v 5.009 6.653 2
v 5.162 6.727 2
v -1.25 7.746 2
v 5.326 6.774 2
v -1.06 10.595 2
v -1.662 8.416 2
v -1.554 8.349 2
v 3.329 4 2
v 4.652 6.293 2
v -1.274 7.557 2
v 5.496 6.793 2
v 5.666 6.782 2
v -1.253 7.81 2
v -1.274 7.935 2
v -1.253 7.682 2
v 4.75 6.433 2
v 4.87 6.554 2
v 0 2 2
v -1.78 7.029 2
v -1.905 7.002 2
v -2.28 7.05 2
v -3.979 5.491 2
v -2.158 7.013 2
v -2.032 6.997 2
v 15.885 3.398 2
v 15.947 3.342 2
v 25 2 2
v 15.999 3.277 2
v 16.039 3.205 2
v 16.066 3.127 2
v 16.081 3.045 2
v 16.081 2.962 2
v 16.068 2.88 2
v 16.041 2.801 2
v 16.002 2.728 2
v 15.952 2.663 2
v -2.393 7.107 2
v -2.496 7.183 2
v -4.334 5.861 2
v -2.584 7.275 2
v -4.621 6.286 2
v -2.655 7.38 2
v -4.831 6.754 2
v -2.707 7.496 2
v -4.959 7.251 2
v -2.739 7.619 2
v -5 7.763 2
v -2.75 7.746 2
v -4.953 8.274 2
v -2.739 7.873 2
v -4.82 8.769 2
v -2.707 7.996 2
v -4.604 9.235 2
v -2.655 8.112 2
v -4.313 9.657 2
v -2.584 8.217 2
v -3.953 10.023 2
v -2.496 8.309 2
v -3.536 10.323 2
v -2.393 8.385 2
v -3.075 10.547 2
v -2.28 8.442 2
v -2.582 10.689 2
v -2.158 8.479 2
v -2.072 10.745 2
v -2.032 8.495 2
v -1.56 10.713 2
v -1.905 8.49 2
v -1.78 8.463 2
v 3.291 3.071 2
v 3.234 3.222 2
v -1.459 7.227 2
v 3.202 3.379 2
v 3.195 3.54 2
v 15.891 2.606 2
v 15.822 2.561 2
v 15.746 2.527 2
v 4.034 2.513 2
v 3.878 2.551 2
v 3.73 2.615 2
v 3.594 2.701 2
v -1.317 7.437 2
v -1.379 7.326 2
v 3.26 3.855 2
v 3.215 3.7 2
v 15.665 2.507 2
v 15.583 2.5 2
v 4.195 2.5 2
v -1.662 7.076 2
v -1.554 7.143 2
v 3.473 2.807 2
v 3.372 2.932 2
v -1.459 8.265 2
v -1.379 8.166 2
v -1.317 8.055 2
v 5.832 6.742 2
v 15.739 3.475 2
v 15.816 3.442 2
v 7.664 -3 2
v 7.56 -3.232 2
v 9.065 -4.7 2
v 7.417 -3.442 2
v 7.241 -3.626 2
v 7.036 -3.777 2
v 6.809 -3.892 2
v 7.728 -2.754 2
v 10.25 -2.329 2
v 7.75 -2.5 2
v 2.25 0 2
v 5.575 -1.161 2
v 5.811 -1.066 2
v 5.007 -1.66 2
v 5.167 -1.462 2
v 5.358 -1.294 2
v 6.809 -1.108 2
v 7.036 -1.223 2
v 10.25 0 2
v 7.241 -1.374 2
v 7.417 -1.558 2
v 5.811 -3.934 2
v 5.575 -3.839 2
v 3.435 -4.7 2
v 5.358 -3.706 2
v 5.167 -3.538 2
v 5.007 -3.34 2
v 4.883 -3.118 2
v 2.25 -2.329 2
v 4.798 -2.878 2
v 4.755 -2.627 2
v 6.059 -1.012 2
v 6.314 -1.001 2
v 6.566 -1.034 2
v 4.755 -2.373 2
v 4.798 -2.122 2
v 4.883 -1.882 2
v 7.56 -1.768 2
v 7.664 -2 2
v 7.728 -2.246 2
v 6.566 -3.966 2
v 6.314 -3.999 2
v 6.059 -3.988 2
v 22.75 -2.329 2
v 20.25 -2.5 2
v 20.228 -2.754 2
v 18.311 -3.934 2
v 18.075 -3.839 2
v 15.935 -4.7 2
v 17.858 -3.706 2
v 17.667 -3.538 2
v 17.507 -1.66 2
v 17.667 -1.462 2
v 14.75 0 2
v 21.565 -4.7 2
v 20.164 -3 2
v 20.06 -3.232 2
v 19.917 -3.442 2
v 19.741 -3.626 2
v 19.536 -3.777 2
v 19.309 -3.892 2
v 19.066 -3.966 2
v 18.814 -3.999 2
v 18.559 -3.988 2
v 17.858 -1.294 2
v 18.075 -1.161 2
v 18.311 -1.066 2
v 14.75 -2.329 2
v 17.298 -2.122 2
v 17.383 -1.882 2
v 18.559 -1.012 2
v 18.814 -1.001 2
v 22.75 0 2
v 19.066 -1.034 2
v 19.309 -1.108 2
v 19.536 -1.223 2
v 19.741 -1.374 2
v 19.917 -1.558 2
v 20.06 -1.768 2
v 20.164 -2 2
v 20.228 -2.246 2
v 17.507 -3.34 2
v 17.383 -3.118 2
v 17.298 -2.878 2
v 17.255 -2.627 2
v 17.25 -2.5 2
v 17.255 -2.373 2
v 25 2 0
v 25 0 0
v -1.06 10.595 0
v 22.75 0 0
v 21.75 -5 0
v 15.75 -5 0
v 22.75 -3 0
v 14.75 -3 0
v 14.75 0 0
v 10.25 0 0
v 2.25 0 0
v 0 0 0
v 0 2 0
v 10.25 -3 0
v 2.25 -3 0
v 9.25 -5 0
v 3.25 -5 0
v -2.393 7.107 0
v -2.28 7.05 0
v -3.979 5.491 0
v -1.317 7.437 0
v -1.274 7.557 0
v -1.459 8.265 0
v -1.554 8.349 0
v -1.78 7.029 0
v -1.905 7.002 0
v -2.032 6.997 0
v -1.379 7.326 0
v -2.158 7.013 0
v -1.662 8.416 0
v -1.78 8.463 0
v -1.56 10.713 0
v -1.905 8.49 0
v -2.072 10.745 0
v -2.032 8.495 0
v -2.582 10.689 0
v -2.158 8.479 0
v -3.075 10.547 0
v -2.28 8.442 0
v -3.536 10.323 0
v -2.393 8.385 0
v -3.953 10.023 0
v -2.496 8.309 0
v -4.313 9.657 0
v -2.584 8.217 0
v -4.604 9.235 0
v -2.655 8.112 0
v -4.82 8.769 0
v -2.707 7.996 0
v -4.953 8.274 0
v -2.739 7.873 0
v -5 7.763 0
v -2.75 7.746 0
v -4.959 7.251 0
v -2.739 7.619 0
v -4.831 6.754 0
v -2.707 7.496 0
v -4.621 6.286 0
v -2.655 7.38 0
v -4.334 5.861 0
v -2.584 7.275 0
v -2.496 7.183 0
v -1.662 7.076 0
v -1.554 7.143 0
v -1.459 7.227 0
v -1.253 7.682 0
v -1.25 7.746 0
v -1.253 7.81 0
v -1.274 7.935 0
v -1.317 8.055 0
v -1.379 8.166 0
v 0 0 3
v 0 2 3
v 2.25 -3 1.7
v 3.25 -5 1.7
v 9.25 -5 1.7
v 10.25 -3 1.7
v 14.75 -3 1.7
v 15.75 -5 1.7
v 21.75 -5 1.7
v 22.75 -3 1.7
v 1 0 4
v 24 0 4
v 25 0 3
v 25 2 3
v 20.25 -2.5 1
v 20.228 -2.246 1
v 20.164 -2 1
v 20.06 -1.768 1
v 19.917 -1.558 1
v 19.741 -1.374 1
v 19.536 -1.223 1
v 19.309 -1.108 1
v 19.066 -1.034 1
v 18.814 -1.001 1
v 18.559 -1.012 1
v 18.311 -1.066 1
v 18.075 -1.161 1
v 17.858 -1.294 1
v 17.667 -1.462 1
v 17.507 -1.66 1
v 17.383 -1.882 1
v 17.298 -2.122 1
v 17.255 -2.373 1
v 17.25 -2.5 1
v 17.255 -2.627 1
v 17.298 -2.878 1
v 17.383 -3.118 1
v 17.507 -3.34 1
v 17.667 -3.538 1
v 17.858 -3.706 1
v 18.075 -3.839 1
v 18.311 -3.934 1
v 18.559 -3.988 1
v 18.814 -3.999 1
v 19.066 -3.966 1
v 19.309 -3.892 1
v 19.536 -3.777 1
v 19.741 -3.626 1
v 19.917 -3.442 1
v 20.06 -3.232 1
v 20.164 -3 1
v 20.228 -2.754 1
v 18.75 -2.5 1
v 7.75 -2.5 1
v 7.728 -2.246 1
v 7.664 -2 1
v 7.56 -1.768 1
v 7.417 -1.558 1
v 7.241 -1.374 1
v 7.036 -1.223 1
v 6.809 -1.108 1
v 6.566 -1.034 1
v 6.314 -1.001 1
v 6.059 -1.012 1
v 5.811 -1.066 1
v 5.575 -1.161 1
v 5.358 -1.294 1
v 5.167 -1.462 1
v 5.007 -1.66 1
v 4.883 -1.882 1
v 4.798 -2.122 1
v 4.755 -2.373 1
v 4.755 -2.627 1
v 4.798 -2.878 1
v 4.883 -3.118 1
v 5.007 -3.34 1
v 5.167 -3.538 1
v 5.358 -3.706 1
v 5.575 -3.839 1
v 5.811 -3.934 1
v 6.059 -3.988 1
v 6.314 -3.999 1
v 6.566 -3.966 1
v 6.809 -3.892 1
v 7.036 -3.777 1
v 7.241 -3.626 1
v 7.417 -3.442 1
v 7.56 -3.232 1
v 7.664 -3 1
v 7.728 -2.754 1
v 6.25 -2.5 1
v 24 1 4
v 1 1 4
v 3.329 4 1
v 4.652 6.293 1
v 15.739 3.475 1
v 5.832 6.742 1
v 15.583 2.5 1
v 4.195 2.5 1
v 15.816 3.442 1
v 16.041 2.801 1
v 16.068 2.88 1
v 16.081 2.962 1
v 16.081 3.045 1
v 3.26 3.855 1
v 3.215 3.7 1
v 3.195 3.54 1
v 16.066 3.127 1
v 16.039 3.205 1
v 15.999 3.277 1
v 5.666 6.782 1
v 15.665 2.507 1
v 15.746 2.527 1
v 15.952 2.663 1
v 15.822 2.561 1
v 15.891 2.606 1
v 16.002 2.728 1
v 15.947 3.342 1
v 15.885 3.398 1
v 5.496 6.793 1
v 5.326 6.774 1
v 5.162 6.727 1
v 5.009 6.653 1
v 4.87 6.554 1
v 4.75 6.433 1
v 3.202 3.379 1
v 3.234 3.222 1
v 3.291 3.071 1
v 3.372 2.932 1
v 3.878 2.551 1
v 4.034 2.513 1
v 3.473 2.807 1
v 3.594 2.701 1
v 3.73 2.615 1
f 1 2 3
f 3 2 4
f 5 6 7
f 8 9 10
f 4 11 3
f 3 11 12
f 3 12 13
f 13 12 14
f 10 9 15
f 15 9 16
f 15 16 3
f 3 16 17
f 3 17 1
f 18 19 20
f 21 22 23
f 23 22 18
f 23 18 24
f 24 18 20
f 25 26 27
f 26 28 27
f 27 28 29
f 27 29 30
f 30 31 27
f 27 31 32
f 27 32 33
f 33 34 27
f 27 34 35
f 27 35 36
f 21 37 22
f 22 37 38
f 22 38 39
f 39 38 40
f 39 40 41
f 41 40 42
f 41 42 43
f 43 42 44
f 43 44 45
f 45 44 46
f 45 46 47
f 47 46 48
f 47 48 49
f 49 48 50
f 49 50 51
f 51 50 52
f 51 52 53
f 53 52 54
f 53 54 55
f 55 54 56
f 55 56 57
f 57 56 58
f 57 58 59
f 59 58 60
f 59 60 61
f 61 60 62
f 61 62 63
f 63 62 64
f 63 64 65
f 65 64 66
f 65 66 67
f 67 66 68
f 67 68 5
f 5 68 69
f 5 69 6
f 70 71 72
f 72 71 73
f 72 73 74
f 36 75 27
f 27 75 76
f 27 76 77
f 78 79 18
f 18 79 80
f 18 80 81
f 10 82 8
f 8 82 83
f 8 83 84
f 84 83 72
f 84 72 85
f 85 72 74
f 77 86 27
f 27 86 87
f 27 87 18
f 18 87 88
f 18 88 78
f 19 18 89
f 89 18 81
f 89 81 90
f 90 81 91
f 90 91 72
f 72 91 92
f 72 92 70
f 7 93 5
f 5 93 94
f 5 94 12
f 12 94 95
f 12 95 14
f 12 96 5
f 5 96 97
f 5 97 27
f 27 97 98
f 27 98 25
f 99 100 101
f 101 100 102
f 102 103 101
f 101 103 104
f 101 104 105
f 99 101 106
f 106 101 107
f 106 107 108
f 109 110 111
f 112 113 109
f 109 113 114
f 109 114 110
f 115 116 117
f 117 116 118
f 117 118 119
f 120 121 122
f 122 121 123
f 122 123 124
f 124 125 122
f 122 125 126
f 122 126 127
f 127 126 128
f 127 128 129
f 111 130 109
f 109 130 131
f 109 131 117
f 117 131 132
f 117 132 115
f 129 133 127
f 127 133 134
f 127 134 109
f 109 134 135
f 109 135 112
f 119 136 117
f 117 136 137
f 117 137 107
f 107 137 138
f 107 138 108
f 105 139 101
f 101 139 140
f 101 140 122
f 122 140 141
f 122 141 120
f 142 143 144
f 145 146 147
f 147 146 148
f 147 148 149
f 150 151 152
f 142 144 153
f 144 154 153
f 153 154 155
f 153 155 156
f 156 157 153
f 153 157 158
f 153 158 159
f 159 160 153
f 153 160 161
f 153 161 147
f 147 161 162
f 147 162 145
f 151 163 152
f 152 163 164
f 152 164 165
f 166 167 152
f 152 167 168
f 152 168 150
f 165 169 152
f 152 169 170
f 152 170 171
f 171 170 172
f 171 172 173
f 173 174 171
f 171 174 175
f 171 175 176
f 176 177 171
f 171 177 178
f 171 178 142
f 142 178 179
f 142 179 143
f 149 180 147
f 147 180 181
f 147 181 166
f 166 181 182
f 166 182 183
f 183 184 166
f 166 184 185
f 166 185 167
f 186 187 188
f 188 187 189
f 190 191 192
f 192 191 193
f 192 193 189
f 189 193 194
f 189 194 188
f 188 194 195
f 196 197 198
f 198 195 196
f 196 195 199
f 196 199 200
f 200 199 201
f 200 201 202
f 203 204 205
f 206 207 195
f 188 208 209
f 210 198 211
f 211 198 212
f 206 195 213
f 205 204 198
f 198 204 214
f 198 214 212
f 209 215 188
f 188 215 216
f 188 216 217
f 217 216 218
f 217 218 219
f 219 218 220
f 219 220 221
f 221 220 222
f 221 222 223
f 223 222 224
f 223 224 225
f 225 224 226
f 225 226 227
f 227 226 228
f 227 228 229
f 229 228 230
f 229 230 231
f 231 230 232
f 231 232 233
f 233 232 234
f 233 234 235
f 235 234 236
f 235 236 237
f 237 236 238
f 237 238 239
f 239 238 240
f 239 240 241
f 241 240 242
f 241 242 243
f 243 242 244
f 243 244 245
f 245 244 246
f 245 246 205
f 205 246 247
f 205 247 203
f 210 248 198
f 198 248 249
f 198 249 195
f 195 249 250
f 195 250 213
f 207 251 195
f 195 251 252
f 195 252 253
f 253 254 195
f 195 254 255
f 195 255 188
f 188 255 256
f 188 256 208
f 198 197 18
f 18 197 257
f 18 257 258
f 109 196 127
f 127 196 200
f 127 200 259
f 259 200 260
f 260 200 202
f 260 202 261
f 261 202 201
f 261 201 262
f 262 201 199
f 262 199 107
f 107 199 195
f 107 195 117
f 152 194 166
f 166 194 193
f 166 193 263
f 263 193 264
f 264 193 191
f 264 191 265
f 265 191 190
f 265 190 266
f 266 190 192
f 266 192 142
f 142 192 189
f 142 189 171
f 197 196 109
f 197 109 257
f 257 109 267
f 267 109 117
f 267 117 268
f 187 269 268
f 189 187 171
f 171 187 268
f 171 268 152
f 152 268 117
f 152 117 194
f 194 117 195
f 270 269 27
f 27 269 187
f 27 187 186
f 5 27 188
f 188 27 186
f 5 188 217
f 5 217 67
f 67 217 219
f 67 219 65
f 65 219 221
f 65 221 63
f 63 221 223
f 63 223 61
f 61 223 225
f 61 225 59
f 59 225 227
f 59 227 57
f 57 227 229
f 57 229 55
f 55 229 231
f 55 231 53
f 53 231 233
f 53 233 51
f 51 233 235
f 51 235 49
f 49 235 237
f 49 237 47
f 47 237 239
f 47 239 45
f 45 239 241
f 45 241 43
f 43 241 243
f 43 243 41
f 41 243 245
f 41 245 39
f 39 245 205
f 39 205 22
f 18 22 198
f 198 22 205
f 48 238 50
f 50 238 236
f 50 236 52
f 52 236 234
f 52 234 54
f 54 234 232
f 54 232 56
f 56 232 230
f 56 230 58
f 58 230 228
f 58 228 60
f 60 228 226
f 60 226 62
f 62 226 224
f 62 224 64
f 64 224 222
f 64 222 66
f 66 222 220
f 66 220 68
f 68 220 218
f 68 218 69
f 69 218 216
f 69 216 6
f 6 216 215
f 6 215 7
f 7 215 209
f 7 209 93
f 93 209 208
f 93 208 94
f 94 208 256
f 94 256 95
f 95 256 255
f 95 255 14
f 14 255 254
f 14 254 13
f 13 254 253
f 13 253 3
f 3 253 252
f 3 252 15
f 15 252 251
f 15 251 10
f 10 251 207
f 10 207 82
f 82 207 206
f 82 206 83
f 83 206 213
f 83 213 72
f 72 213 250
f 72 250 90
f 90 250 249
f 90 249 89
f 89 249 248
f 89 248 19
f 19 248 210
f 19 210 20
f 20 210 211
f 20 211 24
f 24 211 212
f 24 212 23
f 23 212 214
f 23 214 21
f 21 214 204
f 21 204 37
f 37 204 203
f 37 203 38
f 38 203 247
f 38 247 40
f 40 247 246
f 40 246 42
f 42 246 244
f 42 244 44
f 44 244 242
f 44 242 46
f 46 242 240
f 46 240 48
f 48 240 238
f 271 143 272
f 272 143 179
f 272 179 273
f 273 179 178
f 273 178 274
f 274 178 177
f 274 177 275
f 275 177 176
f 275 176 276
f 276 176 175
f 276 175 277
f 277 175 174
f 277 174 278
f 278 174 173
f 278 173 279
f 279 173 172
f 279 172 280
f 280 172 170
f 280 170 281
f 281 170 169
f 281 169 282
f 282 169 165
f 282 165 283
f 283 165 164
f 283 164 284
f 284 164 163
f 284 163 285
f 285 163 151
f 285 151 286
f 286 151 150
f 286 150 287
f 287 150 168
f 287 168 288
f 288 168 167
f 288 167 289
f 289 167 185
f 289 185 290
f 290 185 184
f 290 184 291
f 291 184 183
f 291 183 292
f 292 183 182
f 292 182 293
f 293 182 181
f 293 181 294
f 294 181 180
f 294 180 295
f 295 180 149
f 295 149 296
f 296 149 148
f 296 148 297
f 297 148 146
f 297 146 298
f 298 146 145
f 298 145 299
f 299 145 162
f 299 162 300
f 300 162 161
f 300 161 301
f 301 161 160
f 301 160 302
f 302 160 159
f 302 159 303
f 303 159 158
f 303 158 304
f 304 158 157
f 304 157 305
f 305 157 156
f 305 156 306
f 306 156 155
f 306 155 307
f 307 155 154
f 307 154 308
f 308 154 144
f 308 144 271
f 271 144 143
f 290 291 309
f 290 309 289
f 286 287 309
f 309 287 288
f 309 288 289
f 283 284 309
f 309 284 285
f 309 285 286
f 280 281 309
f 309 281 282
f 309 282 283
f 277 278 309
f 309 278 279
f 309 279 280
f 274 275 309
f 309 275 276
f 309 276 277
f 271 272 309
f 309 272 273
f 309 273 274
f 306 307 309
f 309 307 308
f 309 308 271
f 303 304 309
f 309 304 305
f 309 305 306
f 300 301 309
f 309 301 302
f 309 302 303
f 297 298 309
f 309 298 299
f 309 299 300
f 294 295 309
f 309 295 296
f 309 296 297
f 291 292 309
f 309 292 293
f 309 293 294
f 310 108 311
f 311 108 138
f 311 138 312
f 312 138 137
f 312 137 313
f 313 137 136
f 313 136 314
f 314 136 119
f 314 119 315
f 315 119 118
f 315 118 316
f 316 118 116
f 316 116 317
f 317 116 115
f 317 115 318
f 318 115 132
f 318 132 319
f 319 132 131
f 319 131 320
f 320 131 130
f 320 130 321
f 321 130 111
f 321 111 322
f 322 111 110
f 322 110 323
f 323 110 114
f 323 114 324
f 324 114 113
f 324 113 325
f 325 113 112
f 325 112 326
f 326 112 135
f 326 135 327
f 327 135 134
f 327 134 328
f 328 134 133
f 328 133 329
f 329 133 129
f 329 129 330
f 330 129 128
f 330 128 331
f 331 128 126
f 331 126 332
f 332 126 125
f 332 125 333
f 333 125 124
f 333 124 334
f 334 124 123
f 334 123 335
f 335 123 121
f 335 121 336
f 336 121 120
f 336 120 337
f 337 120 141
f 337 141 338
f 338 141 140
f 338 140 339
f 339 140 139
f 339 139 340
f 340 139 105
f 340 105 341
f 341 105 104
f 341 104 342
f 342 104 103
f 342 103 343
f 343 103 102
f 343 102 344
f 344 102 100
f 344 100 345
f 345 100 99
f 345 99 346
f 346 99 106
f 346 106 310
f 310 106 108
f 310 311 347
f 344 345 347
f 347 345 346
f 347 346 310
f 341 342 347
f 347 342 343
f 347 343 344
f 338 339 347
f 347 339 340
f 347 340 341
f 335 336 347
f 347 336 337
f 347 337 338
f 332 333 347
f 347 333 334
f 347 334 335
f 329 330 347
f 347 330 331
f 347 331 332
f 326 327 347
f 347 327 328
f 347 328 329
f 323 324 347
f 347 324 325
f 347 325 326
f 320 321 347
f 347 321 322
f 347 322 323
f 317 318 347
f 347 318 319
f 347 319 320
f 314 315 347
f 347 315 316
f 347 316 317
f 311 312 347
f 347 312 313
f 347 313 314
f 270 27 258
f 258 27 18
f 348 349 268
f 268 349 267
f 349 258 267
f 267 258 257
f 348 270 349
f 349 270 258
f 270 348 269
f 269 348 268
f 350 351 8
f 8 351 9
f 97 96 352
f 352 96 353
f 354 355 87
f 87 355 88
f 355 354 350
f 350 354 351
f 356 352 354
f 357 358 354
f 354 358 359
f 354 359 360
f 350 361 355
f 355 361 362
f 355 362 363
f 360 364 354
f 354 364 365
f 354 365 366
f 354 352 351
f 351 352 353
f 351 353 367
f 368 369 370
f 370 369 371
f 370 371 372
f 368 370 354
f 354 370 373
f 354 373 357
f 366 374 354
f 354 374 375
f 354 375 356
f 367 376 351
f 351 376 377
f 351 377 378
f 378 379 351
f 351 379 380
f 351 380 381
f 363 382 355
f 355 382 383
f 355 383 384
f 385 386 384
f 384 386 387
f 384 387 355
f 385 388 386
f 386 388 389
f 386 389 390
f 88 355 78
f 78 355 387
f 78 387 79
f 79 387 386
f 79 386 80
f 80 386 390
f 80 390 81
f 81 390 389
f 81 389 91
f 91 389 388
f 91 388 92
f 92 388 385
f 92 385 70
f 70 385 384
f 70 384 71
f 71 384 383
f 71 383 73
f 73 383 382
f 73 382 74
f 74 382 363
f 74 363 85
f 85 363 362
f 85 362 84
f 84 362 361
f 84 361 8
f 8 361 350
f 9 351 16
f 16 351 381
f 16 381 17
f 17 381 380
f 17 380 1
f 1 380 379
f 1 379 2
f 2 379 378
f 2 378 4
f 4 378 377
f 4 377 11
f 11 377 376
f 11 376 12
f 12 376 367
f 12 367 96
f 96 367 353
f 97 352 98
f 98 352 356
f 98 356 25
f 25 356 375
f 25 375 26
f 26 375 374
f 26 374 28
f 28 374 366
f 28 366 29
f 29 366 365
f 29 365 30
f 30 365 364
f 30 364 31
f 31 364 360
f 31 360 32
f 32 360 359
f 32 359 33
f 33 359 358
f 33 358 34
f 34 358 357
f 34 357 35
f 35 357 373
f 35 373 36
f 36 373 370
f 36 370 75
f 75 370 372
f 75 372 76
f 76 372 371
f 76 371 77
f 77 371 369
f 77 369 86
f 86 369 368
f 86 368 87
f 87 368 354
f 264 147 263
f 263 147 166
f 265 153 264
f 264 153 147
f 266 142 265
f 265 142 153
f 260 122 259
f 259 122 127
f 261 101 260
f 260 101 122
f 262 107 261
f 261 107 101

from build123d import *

# Parameters (mm, degrees)
SKIZZE1_R                       = 0.75
AUFSATZ_LINEAR_AUSTRAGEN1_DEPTH = 2
SKIZZE2_R                       = 1.5
SCHNITT_LINEAR_AUSTRAGEN1_DEPTH = 1
SKIZZE3_W                       = 25
SKIZZE3_H                       = 2
AUFSATZ_LINEAR_AUSTRAGEN2_DEPTH = 2
FASE1_SIZE                      = 1
SCHNITT_LINEAR_AUSTRAGEN2_DEPTH = 1
VERRUNDUNG1_R                   = 1
VERRUNDUNG2_R                   = 0.5
FASE2_SIZE                      = 0.3


with BuildPart() as part:
    # Skizze1 → Aufsatz-Linear austragen1 (new body)
    with BuildSketch(Plane.XY):
        with BuildLine():
            Line((9.25, -5), (3.25, -5))
            Line((3.25, -5), (2.25, -3))
            Line((2.25, -3), (2.25, 0))
            Line((2.25, 0), (0, 0))
            Line((0, 0), (0, 2))
            Line((0, 2), (-3.97861477, 5.490953701))
            ThreePointArc((-3.97861477, 5.490953701), (-4.604364731, 9.235021543), (-1.060351102, 10.595012138))
            Line((-1.060351102, 10.595012138), (25, 2))
            Line((25, 2), (25, 0))
            Line((25, 0), (22.75, 0))
            Line((22.75, 0), (22.75, -3))
            Line((22.75, -3), (21.75, -5))
            Line((21.75, -5), (15.75, -5))
            Line((15.75, -5), (14.75, -3))
            Line((14.75, -3), (14.75, 0))
            Line((14.75, 0), (10.25, 0))
            Line((10.25, 0), (10.25, -3))
            Line((10.25, -3), (9.25, -5))
        make_face()
        with Locations((-2, 7.745966692)):
            Circle(SKIZZE1_R, mode=Mode.SUBTRACT)
    extrude(amount=AUFSATZ_LINEAR_AUSTRAGEN1_DEPTH)

    # Skizze2 → Schnitt-Linear austragen1 (cut)
    with BuildSketch(Plane.XY.offset(2)):
        with Locations((6.25, -2.5)):
            Circle(SKIZZE2_R)
        with Locations(Location((18.75, -2.5, 0), (0, 0, 180))):
            Circle(SKIZZE2_R)
    extrude(amount=-SCHNITT_LINEAR_AUSTRAGEN1_DEPTH, mode=Mode.SUBTRACT)

    # Skizze3 → Aufsatz-Linear austragen2 (add)
    with BuildSketch(Plane.XY.offset(2)):
        with Locations((12.5, 1)):
            Rectangle(SKIZZE3_W, SKIZZE3_H)
    extrude(amount=AUFSATZ_LINEAR_AUSTRAGEN2_DEPTH)

    # Fase1
    fase1_edges = [part.edges().sort_by_distance(p)[0] for p in [
        (0, 1, 4),
        (25, 1, 4),
        (12.5, 2, 4),
    ]]
    chamfer(fase1_edges, length=FASE1_SIZE)

    # Skizze4 → Schnitt-Linear austragen2 (cut)
    with BuildSketch(Plane.XY.offset(2)):
        Polygon((5.059080896, 6.997274675), (18.694961237, 2.5), (2.462578152, 2.5), align=None)
    extrude(amount=-SCHNITT_LINEAR_AUSTRAGEN2_DEPTH, mode=Mode.SUBTRACT)

    # Verrundung1
    verrundung1_edges = [part.edges().sort_by_distance(p)[0] for p in [
        (2.462578152, 2.5, 1.5),
        (5.059080896, 6.997274675, 1.5),
    ]]
    fillet(verrundung1_edges, radius=VERRUNDUNG1_R)

    # Verrundung2
    verrundung2_edges = [part.edges().sort_by_distance(p)[0] for p in [
        (18.694961237, 2.5, 1.5),
    ]]
    fillet(verrundung2_edges, radius=VERRUNDUNG2_R)

    # Fase2
    fase2_edges = [part.edges().sort_by_distance(p)[0] for p in [
        (2.75, -4, 2),
        (6.25, -5, 2),
        (9.75, -4, 2),
        (15.25, -4, 2),
        (18.75, -5, 2),
        (22.25, -4, 2),
    ]]
    chamfer(fase2_edges, length=FASE2_SIZE)


solid = part.part
